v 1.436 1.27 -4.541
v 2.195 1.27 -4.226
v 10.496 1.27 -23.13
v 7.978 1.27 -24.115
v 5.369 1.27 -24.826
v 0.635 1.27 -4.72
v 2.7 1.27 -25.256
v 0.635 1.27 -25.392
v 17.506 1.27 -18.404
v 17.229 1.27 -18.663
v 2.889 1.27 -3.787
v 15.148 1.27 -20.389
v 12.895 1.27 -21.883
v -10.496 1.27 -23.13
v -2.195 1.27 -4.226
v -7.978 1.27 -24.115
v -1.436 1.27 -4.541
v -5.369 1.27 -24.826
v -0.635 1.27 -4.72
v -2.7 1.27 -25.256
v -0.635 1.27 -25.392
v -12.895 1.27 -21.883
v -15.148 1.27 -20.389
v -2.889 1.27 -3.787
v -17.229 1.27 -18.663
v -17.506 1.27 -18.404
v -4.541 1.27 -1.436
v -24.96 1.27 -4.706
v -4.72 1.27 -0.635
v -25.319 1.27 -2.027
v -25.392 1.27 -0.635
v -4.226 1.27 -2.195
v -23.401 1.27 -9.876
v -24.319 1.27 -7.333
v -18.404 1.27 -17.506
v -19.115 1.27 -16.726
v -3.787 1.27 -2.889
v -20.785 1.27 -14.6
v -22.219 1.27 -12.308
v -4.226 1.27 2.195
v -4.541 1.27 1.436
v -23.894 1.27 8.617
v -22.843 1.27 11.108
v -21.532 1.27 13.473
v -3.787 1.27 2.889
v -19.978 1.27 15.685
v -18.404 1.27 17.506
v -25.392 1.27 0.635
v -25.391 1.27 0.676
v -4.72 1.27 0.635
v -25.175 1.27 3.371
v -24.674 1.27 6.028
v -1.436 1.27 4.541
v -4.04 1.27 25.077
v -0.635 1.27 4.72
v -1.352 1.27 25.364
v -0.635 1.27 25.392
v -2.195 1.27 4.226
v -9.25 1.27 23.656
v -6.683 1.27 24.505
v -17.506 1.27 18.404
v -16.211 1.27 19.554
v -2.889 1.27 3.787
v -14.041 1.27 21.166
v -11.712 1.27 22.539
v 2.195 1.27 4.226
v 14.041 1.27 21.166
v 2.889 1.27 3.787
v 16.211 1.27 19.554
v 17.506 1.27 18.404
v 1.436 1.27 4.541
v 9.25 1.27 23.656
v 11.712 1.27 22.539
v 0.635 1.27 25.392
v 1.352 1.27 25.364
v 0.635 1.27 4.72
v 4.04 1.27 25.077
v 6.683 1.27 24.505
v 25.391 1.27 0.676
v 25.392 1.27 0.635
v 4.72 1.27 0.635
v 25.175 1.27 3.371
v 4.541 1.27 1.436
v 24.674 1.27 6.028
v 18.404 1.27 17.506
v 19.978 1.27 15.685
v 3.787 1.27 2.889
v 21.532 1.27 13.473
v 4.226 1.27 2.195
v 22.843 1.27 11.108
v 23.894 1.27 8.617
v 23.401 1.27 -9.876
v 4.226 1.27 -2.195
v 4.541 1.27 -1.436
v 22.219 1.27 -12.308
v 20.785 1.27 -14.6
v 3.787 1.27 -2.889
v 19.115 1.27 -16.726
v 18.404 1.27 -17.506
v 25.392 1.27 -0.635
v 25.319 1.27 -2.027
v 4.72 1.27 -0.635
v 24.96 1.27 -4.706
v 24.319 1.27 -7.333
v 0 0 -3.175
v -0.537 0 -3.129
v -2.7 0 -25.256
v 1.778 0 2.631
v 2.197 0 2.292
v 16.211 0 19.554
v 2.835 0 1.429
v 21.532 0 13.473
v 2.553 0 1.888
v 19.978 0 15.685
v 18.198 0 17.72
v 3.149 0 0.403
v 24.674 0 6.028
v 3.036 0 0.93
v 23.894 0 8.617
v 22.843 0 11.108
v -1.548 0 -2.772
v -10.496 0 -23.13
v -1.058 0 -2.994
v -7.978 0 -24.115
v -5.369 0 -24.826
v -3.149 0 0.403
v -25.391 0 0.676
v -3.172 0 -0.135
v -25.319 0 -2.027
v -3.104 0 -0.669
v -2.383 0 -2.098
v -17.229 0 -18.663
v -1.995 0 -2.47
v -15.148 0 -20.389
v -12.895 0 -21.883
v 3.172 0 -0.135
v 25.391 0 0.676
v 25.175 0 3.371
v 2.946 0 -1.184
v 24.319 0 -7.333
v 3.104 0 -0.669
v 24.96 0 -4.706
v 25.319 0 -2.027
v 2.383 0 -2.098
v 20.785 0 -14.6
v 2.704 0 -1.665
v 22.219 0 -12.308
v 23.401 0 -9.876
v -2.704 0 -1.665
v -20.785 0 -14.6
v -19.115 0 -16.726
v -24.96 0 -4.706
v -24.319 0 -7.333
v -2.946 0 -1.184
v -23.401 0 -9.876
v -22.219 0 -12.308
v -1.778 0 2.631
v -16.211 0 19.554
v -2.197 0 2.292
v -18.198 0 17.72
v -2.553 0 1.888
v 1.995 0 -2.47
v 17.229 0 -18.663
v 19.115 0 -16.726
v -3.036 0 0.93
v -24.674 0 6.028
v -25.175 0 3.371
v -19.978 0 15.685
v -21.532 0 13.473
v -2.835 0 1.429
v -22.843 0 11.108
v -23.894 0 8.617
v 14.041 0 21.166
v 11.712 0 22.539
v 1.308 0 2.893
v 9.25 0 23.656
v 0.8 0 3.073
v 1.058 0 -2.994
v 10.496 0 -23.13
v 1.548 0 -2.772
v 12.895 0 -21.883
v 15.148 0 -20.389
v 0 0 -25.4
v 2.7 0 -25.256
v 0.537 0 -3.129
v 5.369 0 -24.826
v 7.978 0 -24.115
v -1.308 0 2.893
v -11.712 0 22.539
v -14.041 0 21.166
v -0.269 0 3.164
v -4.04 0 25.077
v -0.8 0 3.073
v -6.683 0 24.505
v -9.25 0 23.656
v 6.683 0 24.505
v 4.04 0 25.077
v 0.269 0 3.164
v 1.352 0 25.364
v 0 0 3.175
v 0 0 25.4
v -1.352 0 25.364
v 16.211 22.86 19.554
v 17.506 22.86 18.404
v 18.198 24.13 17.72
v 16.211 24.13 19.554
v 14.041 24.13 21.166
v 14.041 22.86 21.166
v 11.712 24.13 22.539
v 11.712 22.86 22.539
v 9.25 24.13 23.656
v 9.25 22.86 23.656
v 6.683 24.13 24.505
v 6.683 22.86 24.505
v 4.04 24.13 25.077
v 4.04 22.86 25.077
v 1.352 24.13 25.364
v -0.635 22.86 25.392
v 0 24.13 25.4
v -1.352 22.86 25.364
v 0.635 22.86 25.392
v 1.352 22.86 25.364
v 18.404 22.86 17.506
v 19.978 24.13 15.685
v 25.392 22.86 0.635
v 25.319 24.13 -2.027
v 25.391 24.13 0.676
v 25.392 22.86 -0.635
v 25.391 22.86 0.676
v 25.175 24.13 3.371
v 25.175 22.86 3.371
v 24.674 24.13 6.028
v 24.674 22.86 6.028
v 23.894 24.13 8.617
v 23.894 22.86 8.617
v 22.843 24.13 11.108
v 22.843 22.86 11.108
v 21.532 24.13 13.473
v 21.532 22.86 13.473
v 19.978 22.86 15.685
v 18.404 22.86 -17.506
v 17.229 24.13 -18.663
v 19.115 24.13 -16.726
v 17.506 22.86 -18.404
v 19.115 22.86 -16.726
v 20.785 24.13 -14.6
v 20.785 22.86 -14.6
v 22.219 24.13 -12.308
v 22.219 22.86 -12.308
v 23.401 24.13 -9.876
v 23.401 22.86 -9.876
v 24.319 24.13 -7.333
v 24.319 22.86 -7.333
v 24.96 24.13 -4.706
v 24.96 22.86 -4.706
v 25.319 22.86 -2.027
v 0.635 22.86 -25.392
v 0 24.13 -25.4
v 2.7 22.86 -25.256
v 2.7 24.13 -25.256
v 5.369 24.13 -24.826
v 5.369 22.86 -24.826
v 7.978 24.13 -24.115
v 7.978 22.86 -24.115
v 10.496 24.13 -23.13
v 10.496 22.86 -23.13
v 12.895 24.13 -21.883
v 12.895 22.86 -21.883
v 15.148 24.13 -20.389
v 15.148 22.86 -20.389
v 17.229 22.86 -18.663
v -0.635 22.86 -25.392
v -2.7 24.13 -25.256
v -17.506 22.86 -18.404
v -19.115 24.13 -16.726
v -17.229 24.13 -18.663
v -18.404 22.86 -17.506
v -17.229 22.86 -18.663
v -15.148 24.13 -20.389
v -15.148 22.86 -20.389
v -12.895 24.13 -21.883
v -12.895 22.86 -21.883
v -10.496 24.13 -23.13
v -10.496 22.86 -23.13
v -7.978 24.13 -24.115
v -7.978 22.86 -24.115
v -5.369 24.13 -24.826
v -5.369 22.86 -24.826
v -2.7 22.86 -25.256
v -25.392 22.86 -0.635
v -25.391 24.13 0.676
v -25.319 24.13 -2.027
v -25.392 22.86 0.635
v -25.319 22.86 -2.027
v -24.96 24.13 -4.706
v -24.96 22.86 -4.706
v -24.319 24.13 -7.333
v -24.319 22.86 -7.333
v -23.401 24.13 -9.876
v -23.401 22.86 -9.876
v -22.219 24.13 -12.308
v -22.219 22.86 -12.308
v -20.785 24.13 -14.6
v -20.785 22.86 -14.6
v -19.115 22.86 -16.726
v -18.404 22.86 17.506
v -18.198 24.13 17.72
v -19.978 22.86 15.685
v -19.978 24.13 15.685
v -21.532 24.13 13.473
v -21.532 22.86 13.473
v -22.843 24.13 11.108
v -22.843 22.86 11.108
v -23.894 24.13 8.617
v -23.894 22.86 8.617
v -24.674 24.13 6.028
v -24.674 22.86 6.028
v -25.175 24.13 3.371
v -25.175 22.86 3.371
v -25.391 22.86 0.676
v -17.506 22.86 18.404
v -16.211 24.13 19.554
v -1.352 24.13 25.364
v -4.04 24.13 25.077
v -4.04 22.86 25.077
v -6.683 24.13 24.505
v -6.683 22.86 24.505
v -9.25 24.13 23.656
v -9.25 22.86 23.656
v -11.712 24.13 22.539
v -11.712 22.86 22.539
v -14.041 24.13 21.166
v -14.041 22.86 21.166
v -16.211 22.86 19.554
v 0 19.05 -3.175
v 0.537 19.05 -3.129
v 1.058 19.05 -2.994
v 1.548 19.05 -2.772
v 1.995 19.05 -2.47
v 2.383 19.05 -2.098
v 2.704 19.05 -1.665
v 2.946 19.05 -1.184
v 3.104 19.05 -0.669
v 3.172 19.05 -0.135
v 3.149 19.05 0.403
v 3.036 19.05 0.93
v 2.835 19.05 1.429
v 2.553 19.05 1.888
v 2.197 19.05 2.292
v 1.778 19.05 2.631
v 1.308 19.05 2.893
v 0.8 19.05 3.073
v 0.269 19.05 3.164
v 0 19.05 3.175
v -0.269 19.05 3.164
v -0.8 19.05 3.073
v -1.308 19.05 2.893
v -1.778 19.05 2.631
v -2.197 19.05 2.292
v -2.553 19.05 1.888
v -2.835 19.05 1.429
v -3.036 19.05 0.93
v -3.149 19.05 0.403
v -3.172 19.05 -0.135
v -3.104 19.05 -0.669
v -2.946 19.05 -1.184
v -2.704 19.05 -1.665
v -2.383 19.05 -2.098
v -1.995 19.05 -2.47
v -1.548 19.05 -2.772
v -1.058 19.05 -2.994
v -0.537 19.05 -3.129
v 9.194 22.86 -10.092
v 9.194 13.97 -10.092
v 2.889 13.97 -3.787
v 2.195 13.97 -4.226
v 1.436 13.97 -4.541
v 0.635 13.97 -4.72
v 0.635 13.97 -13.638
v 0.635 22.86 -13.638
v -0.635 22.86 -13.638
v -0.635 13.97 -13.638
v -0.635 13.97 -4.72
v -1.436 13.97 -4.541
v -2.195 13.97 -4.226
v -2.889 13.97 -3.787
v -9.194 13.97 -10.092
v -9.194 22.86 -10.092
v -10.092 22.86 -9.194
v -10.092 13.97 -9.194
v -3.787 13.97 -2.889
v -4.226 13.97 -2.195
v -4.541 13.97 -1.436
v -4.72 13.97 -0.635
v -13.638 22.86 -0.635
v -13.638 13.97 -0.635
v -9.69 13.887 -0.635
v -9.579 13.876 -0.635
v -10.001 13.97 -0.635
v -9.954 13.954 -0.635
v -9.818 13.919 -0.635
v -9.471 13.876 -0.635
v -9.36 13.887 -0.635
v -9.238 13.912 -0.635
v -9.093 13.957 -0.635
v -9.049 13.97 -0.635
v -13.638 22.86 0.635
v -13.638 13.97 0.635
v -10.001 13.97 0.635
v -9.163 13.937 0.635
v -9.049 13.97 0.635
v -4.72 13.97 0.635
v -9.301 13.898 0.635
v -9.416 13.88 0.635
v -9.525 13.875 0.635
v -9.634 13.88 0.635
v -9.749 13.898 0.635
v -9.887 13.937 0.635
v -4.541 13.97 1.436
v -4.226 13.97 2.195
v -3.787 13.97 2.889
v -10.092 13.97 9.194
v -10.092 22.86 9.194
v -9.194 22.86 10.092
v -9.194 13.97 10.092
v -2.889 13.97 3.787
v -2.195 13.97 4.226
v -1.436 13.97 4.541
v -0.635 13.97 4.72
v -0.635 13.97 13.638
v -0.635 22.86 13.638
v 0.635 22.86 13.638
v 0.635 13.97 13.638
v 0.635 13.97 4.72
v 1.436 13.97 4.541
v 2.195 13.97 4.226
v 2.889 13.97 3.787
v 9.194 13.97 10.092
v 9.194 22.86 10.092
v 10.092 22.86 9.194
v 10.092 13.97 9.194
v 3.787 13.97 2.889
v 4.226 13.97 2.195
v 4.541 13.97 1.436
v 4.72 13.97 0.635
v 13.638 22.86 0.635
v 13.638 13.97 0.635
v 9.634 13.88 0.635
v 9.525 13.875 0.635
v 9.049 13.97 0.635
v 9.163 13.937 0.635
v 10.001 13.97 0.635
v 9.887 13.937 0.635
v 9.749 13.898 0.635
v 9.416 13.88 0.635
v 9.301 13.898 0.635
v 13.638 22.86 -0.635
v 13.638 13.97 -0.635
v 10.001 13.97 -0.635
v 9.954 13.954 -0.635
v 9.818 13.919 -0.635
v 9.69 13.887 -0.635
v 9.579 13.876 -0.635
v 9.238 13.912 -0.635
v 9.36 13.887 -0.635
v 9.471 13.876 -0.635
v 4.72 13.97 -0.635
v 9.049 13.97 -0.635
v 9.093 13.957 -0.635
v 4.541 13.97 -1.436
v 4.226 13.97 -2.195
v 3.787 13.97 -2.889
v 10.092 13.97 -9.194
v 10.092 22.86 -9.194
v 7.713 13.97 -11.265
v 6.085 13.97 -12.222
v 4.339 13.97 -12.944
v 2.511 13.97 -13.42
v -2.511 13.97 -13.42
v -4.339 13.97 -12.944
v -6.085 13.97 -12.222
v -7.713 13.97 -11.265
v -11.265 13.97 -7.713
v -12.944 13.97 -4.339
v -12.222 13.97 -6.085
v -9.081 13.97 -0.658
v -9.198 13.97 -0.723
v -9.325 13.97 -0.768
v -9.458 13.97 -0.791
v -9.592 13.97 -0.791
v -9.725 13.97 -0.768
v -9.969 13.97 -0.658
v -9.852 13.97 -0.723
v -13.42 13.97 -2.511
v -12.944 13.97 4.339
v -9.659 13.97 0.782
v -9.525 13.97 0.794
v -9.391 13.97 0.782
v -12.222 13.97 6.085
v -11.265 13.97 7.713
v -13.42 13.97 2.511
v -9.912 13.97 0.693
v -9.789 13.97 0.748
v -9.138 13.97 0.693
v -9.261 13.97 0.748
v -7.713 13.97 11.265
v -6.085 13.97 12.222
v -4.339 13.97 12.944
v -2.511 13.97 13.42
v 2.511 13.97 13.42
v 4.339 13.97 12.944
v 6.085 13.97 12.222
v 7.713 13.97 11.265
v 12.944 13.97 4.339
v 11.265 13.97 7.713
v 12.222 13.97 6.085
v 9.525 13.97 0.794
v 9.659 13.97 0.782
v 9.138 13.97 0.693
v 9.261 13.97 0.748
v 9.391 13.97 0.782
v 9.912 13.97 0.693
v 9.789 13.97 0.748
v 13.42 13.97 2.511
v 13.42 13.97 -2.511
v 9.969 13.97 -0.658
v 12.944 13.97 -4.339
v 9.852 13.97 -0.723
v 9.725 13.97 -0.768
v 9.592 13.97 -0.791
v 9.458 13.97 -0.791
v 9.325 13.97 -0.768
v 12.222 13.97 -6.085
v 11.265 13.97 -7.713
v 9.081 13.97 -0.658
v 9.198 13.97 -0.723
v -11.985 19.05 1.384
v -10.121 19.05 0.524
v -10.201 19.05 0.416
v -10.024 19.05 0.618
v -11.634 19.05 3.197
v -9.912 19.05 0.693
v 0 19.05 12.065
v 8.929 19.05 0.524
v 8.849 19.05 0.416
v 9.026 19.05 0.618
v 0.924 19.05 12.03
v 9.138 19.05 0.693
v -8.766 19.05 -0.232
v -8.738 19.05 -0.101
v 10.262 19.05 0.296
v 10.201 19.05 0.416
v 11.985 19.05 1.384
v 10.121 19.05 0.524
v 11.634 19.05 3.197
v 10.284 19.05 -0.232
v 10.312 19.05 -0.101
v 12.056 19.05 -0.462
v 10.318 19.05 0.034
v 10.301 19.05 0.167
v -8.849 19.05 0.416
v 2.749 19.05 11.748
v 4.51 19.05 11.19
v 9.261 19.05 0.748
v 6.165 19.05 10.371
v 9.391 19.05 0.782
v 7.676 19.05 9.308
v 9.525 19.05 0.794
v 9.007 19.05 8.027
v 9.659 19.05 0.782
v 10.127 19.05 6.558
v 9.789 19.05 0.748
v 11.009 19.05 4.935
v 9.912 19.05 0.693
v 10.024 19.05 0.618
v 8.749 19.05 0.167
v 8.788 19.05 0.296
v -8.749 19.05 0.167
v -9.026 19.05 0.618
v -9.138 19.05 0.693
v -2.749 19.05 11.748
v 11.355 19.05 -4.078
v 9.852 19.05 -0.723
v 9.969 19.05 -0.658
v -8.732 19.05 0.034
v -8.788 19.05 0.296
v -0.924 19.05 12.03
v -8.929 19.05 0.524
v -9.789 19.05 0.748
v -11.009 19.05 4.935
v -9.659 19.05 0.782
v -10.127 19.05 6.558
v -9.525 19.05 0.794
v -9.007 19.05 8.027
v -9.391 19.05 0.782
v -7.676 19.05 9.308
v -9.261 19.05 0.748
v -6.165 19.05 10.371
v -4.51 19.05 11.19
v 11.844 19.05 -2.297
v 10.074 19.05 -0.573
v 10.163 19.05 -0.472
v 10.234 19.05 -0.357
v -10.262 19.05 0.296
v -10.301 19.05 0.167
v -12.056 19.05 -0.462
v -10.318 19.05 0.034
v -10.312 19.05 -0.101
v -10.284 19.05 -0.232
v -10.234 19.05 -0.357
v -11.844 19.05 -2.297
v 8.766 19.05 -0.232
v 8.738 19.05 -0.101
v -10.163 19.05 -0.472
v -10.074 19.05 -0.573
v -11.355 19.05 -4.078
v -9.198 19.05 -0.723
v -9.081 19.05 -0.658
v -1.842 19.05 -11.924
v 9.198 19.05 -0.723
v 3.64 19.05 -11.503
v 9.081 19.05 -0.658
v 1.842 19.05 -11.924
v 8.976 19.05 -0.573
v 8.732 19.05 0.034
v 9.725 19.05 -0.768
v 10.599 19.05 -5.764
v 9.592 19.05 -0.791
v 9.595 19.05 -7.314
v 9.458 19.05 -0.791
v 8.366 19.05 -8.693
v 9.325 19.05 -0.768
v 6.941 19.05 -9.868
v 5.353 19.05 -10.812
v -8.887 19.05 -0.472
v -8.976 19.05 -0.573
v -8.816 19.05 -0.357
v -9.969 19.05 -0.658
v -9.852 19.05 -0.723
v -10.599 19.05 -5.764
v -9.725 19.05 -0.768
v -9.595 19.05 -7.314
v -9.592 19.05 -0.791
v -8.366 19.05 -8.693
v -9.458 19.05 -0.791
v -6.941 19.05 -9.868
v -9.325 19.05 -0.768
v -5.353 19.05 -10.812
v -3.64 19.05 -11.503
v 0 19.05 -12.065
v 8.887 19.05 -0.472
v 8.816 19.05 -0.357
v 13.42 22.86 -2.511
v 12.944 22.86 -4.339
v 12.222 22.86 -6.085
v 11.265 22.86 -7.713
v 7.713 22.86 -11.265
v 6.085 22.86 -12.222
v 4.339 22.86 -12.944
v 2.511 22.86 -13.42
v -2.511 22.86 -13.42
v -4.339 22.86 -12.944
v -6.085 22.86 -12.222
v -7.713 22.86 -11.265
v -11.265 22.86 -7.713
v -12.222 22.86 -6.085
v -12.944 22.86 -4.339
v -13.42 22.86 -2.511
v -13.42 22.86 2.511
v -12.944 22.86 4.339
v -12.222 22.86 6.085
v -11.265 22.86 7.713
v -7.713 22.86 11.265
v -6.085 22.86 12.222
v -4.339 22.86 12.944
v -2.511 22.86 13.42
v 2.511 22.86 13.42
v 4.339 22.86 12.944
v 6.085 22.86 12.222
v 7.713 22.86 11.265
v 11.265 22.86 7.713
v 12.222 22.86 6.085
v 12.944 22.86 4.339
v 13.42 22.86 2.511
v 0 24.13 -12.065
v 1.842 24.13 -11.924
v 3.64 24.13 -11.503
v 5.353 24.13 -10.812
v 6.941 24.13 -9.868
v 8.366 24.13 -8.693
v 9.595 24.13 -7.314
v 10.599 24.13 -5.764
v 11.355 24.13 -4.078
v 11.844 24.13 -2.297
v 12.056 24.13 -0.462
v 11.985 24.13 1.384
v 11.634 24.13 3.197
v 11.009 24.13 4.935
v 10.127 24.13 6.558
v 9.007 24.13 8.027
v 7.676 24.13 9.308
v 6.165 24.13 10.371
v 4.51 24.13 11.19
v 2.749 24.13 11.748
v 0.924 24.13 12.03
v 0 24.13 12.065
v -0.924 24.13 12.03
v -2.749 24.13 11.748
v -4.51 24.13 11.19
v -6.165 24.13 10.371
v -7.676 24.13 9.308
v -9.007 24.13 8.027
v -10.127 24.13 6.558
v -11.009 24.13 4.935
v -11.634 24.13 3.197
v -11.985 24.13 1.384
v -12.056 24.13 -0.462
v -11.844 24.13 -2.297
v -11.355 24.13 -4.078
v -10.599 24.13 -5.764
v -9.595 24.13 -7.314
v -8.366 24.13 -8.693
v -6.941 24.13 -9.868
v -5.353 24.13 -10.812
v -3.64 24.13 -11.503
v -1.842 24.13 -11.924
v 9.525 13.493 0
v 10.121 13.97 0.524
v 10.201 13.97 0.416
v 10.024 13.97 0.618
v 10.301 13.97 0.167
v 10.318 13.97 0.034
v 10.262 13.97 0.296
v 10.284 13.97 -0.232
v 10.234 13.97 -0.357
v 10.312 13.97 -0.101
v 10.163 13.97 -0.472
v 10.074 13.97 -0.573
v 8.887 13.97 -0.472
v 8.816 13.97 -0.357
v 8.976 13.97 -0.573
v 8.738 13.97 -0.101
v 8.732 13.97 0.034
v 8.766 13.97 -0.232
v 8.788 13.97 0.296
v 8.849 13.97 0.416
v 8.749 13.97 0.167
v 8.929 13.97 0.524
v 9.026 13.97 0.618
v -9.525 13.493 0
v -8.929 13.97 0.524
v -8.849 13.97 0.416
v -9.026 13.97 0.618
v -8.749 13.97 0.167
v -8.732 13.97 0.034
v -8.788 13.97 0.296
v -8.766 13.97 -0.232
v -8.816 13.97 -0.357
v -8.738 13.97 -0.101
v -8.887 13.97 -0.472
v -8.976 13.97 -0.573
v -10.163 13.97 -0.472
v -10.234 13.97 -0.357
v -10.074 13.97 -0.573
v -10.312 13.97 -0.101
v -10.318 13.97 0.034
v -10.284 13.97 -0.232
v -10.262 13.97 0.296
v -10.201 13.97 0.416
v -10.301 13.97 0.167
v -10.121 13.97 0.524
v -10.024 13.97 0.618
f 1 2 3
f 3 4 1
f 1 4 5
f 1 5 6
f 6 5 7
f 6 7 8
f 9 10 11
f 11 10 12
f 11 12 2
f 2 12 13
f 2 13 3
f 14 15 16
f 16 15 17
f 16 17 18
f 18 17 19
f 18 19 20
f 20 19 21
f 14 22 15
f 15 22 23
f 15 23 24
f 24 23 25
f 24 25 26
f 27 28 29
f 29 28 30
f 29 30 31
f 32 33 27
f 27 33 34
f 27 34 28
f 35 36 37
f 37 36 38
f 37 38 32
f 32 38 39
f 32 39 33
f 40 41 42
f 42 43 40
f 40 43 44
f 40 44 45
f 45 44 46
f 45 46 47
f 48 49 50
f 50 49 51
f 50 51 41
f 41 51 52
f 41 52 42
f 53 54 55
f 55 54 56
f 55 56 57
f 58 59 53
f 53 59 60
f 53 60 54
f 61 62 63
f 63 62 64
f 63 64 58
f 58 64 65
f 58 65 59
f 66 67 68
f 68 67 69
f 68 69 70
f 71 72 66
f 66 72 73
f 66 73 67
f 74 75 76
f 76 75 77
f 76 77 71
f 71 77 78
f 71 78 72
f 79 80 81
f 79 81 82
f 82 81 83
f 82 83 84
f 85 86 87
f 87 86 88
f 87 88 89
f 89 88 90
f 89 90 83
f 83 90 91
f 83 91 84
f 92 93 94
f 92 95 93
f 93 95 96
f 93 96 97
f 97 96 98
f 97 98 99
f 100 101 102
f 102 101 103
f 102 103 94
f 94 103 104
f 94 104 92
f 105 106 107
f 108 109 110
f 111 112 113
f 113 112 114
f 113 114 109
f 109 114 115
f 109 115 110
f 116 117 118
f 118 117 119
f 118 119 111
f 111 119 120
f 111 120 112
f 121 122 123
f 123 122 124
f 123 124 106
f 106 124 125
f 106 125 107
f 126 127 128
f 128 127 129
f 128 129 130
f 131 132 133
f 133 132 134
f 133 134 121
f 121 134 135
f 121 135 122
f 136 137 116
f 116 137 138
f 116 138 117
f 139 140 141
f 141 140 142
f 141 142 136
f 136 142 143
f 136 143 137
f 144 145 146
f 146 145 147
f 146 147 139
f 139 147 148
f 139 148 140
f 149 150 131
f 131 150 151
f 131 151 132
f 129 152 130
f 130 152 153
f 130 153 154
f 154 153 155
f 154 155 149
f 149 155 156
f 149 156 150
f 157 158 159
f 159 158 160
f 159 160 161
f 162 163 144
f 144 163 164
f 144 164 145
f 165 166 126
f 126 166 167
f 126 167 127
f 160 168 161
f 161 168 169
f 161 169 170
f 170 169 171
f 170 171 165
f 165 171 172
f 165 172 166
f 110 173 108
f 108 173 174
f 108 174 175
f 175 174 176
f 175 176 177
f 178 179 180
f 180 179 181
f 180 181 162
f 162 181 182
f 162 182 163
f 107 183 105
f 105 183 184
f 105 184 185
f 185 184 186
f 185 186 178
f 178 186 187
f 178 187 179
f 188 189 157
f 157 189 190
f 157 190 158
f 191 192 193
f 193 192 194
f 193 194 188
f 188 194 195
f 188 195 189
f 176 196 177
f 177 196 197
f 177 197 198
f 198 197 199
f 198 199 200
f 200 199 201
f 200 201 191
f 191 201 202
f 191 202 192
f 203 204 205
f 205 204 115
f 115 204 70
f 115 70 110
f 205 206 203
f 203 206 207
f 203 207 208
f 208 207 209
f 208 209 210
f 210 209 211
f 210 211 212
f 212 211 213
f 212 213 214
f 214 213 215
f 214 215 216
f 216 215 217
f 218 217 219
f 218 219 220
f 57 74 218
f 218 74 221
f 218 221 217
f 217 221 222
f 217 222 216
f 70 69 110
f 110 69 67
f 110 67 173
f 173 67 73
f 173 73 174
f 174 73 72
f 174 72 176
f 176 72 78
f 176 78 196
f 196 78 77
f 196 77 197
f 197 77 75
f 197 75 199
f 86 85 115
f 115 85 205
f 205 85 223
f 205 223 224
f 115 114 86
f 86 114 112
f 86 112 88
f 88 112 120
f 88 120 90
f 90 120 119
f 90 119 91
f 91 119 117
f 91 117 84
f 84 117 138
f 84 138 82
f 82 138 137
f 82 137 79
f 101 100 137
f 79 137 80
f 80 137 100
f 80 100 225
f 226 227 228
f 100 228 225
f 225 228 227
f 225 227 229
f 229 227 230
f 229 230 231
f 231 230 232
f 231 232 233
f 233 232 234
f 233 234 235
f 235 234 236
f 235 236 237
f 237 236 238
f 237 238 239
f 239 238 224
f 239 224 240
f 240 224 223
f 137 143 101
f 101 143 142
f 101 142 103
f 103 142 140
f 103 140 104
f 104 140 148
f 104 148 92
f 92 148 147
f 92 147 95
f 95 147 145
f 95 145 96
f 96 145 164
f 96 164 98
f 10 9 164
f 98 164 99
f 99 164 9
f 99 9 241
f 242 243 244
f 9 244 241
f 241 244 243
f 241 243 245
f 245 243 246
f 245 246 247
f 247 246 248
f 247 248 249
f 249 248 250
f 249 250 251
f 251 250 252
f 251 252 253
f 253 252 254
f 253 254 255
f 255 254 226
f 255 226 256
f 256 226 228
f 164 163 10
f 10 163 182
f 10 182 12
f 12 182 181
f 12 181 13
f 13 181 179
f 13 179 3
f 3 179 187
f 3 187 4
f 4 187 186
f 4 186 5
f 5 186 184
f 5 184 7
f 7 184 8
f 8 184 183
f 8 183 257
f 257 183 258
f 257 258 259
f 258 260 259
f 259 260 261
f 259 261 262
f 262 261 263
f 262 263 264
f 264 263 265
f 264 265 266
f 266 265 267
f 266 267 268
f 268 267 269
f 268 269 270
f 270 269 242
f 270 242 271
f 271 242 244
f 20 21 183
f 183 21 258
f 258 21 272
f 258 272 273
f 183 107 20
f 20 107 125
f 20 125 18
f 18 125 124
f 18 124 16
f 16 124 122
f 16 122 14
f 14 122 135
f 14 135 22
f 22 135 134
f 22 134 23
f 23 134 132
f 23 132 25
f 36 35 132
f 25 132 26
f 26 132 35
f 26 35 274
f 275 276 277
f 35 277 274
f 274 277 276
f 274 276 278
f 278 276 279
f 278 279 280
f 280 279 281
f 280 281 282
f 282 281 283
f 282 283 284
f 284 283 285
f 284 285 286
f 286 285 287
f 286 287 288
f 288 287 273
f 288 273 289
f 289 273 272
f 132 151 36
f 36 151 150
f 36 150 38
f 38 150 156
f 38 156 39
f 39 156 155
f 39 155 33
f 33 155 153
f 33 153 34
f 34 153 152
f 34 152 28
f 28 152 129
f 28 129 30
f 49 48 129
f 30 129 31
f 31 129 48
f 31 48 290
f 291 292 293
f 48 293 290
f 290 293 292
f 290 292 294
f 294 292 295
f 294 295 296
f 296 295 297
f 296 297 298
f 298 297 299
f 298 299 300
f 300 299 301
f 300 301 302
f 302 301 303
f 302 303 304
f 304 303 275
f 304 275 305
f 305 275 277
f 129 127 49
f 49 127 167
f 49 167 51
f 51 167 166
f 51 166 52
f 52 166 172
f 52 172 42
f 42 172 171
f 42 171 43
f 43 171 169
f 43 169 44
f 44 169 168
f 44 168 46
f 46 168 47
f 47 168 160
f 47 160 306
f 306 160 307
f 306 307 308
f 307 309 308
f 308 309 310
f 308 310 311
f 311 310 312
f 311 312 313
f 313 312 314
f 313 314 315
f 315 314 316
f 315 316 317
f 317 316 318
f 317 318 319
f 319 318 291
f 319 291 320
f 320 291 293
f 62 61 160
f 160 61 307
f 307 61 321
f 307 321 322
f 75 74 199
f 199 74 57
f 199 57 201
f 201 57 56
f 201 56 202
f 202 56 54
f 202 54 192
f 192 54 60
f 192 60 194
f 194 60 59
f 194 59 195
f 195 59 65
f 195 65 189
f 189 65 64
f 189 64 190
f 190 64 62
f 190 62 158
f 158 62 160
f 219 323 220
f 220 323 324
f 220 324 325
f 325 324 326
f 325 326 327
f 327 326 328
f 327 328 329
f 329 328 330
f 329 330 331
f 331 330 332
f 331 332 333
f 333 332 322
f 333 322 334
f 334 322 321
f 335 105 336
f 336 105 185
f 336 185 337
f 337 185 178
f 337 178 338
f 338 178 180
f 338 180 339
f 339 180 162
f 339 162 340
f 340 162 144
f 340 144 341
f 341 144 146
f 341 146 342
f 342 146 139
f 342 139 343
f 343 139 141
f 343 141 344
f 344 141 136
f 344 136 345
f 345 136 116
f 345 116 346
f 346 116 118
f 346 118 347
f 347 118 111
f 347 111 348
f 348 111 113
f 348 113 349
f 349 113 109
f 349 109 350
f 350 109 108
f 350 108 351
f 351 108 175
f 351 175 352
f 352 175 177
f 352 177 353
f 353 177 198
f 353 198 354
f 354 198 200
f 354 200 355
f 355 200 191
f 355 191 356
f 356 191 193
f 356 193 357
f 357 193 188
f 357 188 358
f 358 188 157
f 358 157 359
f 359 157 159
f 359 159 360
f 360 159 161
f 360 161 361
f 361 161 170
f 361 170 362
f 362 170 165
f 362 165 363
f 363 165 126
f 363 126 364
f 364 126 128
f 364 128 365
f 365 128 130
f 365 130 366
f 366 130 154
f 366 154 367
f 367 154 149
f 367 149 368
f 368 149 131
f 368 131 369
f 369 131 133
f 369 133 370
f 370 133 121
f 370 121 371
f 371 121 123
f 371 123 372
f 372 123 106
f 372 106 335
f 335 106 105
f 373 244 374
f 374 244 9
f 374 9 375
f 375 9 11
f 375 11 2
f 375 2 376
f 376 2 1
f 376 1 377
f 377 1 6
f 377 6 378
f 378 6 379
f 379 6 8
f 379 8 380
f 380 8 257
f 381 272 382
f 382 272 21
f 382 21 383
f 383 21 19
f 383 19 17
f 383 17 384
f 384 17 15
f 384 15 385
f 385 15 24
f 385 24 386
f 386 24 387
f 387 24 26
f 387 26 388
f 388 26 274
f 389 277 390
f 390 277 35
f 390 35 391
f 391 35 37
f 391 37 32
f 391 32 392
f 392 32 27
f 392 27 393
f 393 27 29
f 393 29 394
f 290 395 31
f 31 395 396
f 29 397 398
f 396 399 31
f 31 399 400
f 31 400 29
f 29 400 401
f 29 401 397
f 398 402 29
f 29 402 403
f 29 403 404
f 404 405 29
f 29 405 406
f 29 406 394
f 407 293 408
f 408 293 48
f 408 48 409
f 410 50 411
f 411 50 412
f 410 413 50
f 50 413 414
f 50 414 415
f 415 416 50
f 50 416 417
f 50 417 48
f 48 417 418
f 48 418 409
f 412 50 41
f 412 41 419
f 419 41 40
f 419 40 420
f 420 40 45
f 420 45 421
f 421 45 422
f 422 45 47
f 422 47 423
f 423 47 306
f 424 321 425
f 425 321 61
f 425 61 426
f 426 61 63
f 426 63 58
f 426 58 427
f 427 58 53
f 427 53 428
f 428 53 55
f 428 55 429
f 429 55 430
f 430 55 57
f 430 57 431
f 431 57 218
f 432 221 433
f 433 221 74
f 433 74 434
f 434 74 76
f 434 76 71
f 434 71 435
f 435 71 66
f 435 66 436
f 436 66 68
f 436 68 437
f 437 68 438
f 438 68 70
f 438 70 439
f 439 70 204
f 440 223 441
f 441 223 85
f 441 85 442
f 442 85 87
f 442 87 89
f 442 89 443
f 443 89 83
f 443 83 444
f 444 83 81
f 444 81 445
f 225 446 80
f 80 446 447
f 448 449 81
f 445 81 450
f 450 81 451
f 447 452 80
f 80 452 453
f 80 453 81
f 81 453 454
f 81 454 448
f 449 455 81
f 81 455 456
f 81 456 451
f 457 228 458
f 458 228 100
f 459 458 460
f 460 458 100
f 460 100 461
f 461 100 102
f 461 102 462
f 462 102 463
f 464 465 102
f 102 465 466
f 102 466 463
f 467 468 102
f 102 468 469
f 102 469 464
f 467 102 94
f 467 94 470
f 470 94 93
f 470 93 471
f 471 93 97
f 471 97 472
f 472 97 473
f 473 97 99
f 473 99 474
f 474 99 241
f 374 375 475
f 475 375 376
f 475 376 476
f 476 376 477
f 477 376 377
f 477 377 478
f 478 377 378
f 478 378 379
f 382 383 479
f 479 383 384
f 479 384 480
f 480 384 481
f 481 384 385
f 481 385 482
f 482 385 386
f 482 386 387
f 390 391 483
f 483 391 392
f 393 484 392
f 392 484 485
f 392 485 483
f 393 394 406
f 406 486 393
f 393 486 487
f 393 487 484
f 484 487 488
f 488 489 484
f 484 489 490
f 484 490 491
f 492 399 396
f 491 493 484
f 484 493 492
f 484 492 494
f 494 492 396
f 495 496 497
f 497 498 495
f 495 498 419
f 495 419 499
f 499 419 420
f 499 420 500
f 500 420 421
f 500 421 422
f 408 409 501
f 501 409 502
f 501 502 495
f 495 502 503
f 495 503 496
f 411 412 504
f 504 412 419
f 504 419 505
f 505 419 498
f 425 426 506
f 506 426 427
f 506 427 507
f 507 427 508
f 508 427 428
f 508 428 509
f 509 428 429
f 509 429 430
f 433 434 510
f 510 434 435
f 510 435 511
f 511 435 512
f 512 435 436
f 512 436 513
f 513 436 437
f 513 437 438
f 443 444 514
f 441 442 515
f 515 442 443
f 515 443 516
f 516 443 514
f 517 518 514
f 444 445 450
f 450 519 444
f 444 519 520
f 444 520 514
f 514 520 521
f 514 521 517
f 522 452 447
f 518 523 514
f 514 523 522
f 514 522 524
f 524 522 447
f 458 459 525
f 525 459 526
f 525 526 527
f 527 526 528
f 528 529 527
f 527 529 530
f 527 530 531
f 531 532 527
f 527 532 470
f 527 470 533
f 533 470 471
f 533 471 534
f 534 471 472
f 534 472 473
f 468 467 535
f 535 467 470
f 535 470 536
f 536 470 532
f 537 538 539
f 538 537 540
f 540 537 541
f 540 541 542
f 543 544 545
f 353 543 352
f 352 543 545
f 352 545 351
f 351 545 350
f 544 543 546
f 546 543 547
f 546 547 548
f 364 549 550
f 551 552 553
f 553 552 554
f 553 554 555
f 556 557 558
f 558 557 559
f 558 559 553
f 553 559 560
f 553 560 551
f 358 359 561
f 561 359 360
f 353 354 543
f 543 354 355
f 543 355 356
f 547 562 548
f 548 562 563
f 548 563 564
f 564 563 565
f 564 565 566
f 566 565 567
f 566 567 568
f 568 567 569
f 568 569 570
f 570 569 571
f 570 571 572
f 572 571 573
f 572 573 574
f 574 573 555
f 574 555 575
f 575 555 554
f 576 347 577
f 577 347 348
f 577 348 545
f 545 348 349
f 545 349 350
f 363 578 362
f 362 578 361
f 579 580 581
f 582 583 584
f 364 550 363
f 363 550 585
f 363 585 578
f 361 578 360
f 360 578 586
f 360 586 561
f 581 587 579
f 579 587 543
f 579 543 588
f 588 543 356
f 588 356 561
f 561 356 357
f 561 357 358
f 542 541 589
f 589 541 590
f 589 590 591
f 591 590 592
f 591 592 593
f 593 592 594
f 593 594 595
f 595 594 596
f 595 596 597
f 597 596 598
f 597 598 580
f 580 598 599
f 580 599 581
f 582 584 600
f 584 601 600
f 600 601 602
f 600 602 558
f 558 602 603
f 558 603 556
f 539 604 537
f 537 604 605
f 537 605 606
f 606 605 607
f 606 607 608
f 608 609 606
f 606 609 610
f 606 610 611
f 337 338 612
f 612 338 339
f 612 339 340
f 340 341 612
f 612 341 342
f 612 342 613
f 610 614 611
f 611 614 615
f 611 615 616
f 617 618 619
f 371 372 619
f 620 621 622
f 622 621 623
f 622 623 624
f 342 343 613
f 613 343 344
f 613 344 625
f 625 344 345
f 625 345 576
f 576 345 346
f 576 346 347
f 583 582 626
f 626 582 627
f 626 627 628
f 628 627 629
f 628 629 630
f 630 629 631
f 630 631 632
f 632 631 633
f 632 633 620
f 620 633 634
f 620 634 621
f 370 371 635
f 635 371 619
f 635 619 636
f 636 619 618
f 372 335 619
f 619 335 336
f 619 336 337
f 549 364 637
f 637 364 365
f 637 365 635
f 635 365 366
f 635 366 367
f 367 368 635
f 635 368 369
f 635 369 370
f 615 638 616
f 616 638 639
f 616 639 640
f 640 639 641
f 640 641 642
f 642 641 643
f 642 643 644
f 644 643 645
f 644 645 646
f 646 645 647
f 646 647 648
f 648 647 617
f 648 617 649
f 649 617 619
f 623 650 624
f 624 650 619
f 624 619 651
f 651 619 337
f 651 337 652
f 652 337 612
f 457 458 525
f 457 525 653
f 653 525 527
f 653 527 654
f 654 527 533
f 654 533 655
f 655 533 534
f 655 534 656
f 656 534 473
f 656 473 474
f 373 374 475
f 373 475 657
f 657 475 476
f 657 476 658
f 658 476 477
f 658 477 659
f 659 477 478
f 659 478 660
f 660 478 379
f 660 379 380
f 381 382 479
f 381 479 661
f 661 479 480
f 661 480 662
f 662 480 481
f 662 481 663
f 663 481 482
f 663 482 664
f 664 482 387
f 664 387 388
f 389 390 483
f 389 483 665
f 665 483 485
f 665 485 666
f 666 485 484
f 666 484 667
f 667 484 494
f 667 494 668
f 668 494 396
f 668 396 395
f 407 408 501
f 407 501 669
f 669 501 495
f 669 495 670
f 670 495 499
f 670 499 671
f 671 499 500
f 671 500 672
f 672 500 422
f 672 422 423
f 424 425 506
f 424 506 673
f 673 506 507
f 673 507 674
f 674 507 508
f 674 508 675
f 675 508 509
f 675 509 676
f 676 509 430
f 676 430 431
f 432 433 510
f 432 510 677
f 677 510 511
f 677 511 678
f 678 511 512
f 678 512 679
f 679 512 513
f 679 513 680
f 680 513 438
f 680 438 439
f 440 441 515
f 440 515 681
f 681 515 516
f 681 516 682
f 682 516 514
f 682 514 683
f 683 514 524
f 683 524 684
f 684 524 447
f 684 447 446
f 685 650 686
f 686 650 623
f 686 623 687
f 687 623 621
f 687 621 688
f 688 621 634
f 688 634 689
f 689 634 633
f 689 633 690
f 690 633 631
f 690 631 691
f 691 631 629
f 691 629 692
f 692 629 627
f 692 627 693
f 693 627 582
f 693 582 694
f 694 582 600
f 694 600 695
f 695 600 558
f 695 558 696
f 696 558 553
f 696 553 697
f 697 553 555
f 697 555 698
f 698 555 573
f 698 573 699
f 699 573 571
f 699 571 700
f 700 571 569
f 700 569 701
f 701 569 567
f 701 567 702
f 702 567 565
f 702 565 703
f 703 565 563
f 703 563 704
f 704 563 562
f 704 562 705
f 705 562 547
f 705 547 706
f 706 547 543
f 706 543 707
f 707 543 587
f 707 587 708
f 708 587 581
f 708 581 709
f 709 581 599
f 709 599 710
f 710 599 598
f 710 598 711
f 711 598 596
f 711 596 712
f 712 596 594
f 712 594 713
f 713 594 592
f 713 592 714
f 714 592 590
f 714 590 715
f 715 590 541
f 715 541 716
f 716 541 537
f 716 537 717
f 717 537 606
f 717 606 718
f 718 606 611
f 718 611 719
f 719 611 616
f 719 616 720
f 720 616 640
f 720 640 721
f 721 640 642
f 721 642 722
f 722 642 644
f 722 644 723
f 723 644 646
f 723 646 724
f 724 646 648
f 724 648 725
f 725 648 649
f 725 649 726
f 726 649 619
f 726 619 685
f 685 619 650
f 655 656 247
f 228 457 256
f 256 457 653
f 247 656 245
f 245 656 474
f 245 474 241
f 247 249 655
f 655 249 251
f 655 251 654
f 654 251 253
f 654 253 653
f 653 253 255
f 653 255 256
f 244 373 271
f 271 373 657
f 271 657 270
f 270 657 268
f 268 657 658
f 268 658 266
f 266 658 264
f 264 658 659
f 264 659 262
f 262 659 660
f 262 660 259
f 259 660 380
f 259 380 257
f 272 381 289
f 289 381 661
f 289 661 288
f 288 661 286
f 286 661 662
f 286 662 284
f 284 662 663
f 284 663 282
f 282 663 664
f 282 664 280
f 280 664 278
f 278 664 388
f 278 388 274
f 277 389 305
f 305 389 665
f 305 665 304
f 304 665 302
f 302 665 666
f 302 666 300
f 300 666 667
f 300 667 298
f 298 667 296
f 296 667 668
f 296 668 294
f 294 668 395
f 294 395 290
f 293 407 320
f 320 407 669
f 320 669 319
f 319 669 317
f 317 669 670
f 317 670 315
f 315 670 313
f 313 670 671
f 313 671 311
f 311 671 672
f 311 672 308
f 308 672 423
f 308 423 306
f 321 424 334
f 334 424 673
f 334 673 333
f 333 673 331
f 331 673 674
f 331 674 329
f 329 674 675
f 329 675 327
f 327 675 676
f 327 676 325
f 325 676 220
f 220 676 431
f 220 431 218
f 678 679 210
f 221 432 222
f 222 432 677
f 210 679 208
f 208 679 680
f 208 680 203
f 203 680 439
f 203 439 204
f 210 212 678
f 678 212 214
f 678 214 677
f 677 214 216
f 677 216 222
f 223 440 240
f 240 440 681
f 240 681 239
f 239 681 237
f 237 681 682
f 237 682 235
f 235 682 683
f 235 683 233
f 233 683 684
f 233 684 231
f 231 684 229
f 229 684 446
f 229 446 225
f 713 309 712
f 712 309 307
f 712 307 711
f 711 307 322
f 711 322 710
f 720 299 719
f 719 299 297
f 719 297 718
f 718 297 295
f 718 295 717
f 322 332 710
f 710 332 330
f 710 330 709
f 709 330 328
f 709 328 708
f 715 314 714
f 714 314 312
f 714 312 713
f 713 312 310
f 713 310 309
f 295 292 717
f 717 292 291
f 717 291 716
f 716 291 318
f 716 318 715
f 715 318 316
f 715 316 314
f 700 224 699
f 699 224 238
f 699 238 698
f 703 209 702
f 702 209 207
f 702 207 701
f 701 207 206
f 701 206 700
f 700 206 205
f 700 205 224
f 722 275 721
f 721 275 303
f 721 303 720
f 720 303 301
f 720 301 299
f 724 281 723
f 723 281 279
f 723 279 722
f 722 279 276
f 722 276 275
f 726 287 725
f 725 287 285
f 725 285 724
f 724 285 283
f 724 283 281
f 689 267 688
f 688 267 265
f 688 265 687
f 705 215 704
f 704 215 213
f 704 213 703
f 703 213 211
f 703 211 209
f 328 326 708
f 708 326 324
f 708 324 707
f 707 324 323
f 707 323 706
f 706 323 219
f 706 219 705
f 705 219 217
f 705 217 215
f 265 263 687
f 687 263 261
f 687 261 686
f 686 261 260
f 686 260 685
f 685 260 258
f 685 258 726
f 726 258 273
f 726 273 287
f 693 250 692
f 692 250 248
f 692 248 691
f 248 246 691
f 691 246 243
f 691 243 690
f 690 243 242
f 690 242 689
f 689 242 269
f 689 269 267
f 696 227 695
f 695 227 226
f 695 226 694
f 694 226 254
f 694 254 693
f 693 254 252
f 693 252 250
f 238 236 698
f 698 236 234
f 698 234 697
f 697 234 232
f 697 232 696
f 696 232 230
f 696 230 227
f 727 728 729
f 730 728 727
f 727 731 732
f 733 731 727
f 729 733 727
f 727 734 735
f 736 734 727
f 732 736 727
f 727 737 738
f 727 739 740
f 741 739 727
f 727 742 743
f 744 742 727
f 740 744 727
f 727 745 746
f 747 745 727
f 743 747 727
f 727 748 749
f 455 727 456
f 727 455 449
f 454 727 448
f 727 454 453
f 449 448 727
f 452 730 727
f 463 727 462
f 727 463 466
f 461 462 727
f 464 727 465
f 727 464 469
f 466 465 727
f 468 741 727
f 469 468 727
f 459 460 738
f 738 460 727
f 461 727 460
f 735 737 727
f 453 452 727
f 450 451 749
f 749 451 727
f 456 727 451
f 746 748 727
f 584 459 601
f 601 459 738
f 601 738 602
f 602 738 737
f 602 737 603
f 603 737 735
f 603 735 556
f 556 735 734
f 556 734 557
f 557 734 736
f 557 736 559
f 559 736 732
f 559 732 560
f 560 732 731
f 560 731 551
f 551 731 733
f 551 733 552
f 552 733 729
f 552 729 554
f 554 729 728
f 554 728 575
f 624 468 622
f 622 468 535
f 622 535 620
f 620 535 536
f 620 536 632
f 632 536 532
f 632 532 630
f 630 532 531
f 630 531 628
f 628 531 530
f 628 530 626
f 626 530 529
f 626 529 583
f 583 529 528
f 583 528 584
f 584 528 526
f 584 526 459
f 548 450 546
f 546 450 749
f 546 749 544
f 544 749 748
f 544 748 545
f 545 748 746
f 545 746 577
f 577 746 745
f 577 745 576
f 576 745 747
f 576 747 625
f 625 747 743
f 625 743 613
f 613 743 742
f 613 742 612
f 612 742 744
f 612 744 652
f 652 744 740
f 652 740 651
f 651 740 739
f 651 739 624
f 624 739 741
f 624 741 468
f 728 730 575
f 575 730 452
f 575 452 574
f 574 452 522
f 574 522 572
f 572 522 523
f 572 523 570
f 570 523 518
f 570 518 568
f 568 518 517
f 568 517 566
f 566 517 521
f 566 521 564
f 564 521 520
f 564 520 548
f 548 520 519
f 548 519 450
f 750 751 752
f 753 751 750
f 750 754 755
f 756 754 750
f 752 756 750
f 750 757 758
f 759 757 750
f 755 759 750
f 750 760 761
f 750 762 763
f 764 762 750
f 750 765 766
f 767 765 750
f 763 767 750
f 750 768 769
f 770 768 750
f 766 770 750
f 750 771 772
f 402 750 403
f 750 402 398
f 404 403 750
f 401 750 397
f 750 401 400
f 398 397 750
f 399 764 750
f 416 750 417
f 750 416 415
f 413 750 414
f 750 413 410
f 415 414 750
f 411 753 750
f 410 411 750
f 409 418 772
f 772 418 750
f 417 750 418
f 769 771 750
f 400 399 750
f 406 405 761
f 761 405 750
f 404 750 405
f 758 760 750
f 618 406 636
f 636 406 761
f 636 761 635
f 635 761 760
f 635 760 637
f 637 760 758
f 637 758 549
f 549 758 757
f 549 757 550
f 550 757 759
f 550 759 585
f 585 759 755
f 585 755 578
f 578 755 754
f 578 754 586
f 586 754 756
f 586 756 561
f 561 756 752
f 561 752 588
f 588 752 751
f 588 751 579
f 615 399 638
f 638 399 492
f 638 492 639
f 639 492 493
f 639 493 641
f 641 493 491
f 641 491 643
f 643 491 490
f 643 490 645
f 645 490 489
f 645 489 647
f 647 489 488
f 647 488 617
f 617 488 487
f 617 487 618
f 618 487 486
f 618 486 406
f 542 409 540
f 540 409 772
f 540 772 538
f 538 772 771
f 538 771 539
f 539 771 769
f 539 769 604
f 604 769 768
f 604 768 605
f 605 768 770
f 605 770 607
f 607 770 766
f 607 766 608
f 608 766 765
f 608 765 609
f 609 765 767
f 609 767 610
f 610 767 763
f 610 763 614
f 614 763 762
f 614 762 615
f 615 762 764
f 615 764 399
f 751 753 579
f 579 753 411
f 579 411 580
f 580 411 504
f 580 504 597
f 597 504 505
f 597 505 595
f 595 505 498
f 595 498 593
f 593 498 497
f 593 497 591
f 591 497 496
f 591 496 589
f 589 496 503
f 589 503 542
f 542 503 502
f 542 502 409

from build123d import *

# Parameters (mm, degrees)
SKETCH1_R                          = 25.4
SKETCH1_R_2                        = 3.175
BOSS_EXTRUDE1_DEPTH                = 1.27
SKETCH2_R                          = 3.175
BOSS_EXTRUDE4_DEPTH                = 12.7
SKETCH5_R                          = 12.065
SKETCH5_R_2                        = 3.175
BOSS_EXTRUDE6_DEPTH                = 2.54
SKETCH9_R                          = 12.065
SKETCH9_R_2                        = 3.175
BOSS_EXTRUDE11_DEPTH               = 2.54
SKETCH5_4_R                        = 12.065
BOSS_EXTRUDE7_DEPTH                = 8.89
SKETCH6_R                          = 25.4
SKETCH6_R_2                        = 12.065
BOSS_EXTRUDE8_DEPTH                = 1.27
F_1_16_0_0625_DIAMETER_HOLE1_D     = 1.5875
F_1_16_0_0625_DIAMETER_HOLE1_DEPTH = 5.08
F_1_16_0_0625_DIAMETER_HOLE1_TIP   = 0.476933116


with BuildPart() as part:
    # Sketch1 → Boss-Extrude1 (new body)
    with BuildSketch(Plane(origin=(0, 0, 0), x_dir=(1, 0, 0), z_dir=(0, 1, 0))):
        Circle(SKETCH1_R)
        Circle(SKETCH1_R_2, mode=Mode.SUBTRACT)
    extrude(amount=BOSS_EXTRUDE1_DEPTH)

    # Sketch2 → Boss-Extrude4 (add)
    with BuildSketch(Plane(origin=(0, 1.27, 0), x_dir=(1, 0, 0), z_dir=(0, 1, 0))):
        with BuildLine():
            ThreePointArc((0.635, 25.392061259), (0, 25.4), (-0.635, 25.392061259))
            Line((-0.635, 25.392061259), (-0.635, 4.719976827))
            ThreePointArc((-0.635, 4.719976827), (-1.822529847, 4.399976274), (-2.888514816, 3.786540428))
            Line((-2.888514816, 3.786540428), (-17.505885899, 18.403911511))
            ThreePointArc((-17.505885899, 18.403911511), (-17.960512242, 17.960512242), (-18.403911511, 17.505885899))
            Line((-18.403911511, 17.505885899), (-3.786540428, 2.888514816))
            ThreePointArc((-3.786540428, 2.888514816), (-4.399976274, 1.822529847), (-4.719976827, 0.635))
            Line((-4.719976827, 0.635), (-25.392061259, 0.635))
            ThreePointArc((-25.392061259, 0.635), (-25.4, 0), (-25.392061259, -0.635))
            Line((-25.392061259, -0.635), (-4.719976827, -0.635))
            ThreePointArc((-4.719976827, -0.635), (-4.399976274, -1.822529847), (-3.786540428, -2.888514816))
            Line((-3.786540428, -2.888514816), (-18.403911511, -17.505885899))
            ThreePointArc((-18.403911511, -17.505885899), (-17.960512242, -17.960512242), (-17.505885899, -18.403911511))
            Line((-17.505885899, -18.403911511), (-2.888514816, -3.786540428))
            ThreePointArc((-2.888514816, -3.786540428), (-1.822529847, -4.399976274), (-0.635, -4.719976827))
            Line((-0.635, -4.719976827), (-0.635, -25.392061259))
            ThreePointArc((-0.635, -25.392061259), (0, -25.4), (0.635, -25.392061259))
            Line((0.635, -25.392061259), (0.635, -4.719976827))
            ThreePointArc((0.635, -4.719976827), (1.822529847, -4.399976274), (2.888514816, -3.786540428))
            Line((2.888514816, -3.786540428), (17.505885899, -18.403911511))
            ThreePointArc((17.505885899, -18.403911511), (17.960512242, -17.960512242), (18.403911511, -17.505885899))
            Line((18.403911511, -17.505885899), (3.786540428, -2.888514816))
            ThreePointArc((3.786540428, -2.888514816), (4.399976274, -1.822529847), (4.719976827, -0.635))
            Line((4.719976827, -0.635), (25.392061259, -0.635))
            ThreePointArc((25.392061259, -0.635), (25.4, 0), (25.392061259, 0.635))
            Line((25.392061259, 0.635), (4.719976827, 0.635))
            ThreePointArc((4.719976827, 0.635), (4.399976274, 1.822529847), (3.786540428, 2.888514816))
            Line((3.786540428, 2.888514816), (18.403911511, 17.505885899))
            ThreePointArc((18.403911511, 17.505885899), (17.960512242, 17.960512242), (17.505885899, 18.403911511))
            Line((17.505885899, 18.403911511), (2.888514816, 3.786540428))
            ThreePointArc((2.888514816, 3.786540428), (1.822529847, 4.399976274), (0.635, 4.719976827))
            Line((0.635, 4.719976827), (0.635, 25.392061259))
        make_face()
        Circle(SKETCH2_R, mode=Mode.SUBTRACT)
    extrude(amount=BOSS_EXTRUDE4_DEPTH)

    # Sketch5 → Boss-Extrude6 (add)
    with BuildSketch(Plane(origin=(0, 13.97, 0), x_dir=(1, 0, 0), z_dir=(0, 1, 0))):
        Circle(SKETCH5_R)
        Circle(SKETCH5_R_2, mode=Mode.SUBTRACT)
    extrude(amount=BOSS_EXTRUDE6_DEPTH)

    # Sketch9 → Boss-Extrude11 (add)
    with BuildSketch(Plane(origin=(0, 16.51, 0), x_dir=(1, 0, 0), z_dir=(0, 1, 0))):
        Circle(SKETCH9_R)
        Circle(SKETCH9_R_2, mode=Mode.SUBTRACT)
    extrude(amount=BOSS_EXTRUDE11_DEPTH)

    # Sketch5<4> → Boss-Extrude7 (add)
    with BuildSketch(Plane(origin=(0, 13.97, 0), x_dir=(1, 0, 0), z_dir=(0, 1, 0))):
        with BuildLine():
            ThreePointArc((0.635, -13.637724563), (5.22458556, -12.613265318), (9.194314712, -10.092340324))
            Line((9.194314712, -10.092340324), (17.505885899, -18.403911511))
            ThreePointArc((17.505885899, -18.403911511), (17.960512242, -17.960512242), (18.403911511, -17.505885899))
            Line((18.403911511, -17.505885899), (10.092340324, -9.194314712))
            ThreePointArc((10.092340324, -9.194314712), (12.613265318, -5.22458556), (13.637724563, -0.635))
            Line((13.637724563, -0.635), (25.392061259, -0.635))
            ThreePointArc((25.392061259, -0.635), (25.4, 0), (25.392061259, 0.635))
            Line((25.392061259, 0.635), (13.637724563, 0.635))
            ThreePointArc((13.637724563, 0.635), (12.613265318, 5.22458556), (10.092340324, 9.194314712))
            Line((10.092340324, 9.194314712), (18.403911511, 17.505885899))
            ThreePointArc((18.403911511, 17.505885899), (17.960512242, 17.960512242), (17.505885899, 18.403911511))
            Line((17.505885899, 18.403911511), (9.194314712, 10.092340324))
            ThreePointArc((9.194314712, 10.092340324), (5.22458556, 12.613265318), (0.635, 13.637724563))
            Line((0.635, 13.637724563), (0.635, 25.392061259))
            ThreePointArc((0.635, 25.392061259), (0, 25.4), (-0.635, 25.392061259))
            Line((-0.635, 25.392061259), (-0.635, 13.637724563))
            ThreePointArc((-0.635, 13.637724563), (-5.22458556, 12.613265318), (-9.194314712, 10.092340324))
            Line((-9.194314712, 10.092340324), (-17.505885899, 18.403911511))
            ThreePointArc((-17.505885899, 18.403911511), (-17.960512242, 17.960512242), (-18.403911511, 17.505885899))
            Line((-18.403911511, 17.505885899), (-10.092340324, 9.194314712))
            ThreePointArc((-10.092340324, 9.194314712), (-12.613265318, 5.22458556), (-13.637724563, 0.635))
            Line((-13.637724563, 0.635), (-25.392061259, 0.635))
            ThreePointArc((-25.392061259, 0.635), (-25.4, 0), (-25.392061259, -0.635))
            Line((-25.392061259, -0.635), (-13.637724563, -0.635))
            ThreePointArc((-13.637724563, -0.635), (-12.613265318, -5.22458556), (-10.092340324, -9.194314712))
            Line((-10.092340324, -9.194314712), (-18.403911511, -17.505885899))
            ThreePointArc((-18.403911511, -17.505885899), (-17.960512242, -17.960512242), (-17.505885899, -18.403911511))
            Line((-17.505885899, -18.403911511), (-9.194314712, -10.092340324))
            ThreePointArc((-9.194314712, -10.092340324), (-5.22458556, -12.613265318), (-0.635, -13.637724563))
            Line((-0.635, -13.637724563), (-0.635, -25.392061259))
            ThreePointArc((-0.635, -25.392061259), (0, -25.4), (0.635, -25.392061259))
            Line((0.635, -25.392061259), (0.635, -13.637724563))
        make_face()
        Circle(SKETCH5_4_R, mode=Mode.SUBTRACT)
    extrude(amount=BOSS_EXTRUDE7_DEPTH)

    # Sketch6 → Boss-Extrude8 (add)
    with BuildSketch(Plane(origin=(0, 22.86, 0), x_dir=(1, 0, 0), z_dir=(0, 1, 0))):
        Circle(SKETCH6_R)
        Circle(SKETCH6_R_2, mode=Mode.SUBTRACT)
    extrude(amount=BOSS_EXTRUDE8_DEPTH)

    # 1/16 (0.0625) Diameter Hole1
    with Locations(Plane(origin=(0, 19.05, 0), x_dir=(1, 0, 0), z_dir=(0, 1, 0))):
        with Locations((-9.525, 0), (9.525, 0)):
            Hole(F_1_16_0_0625_DIAMETER_HOLE1_D / 2, depth=F_1_16_0_0625_DIAMETER_HOLE1_DEPTH)
            with Locations((0, 0, -(F_1_16_0_0625_DIAMETER_HOLE1_DEPTH + F_1_16_0_0625_DIAMETER_HOLE1_TIP / 2))):  # 118° drill point
                Cone(0, F_1_16_0_0625_DIAMETER_HOLE1_D / 2, F_1_16_0_0625_DIAMETER_HOLE1_TIP, mode=Mode.SUBTRACT)


solid = part.part
